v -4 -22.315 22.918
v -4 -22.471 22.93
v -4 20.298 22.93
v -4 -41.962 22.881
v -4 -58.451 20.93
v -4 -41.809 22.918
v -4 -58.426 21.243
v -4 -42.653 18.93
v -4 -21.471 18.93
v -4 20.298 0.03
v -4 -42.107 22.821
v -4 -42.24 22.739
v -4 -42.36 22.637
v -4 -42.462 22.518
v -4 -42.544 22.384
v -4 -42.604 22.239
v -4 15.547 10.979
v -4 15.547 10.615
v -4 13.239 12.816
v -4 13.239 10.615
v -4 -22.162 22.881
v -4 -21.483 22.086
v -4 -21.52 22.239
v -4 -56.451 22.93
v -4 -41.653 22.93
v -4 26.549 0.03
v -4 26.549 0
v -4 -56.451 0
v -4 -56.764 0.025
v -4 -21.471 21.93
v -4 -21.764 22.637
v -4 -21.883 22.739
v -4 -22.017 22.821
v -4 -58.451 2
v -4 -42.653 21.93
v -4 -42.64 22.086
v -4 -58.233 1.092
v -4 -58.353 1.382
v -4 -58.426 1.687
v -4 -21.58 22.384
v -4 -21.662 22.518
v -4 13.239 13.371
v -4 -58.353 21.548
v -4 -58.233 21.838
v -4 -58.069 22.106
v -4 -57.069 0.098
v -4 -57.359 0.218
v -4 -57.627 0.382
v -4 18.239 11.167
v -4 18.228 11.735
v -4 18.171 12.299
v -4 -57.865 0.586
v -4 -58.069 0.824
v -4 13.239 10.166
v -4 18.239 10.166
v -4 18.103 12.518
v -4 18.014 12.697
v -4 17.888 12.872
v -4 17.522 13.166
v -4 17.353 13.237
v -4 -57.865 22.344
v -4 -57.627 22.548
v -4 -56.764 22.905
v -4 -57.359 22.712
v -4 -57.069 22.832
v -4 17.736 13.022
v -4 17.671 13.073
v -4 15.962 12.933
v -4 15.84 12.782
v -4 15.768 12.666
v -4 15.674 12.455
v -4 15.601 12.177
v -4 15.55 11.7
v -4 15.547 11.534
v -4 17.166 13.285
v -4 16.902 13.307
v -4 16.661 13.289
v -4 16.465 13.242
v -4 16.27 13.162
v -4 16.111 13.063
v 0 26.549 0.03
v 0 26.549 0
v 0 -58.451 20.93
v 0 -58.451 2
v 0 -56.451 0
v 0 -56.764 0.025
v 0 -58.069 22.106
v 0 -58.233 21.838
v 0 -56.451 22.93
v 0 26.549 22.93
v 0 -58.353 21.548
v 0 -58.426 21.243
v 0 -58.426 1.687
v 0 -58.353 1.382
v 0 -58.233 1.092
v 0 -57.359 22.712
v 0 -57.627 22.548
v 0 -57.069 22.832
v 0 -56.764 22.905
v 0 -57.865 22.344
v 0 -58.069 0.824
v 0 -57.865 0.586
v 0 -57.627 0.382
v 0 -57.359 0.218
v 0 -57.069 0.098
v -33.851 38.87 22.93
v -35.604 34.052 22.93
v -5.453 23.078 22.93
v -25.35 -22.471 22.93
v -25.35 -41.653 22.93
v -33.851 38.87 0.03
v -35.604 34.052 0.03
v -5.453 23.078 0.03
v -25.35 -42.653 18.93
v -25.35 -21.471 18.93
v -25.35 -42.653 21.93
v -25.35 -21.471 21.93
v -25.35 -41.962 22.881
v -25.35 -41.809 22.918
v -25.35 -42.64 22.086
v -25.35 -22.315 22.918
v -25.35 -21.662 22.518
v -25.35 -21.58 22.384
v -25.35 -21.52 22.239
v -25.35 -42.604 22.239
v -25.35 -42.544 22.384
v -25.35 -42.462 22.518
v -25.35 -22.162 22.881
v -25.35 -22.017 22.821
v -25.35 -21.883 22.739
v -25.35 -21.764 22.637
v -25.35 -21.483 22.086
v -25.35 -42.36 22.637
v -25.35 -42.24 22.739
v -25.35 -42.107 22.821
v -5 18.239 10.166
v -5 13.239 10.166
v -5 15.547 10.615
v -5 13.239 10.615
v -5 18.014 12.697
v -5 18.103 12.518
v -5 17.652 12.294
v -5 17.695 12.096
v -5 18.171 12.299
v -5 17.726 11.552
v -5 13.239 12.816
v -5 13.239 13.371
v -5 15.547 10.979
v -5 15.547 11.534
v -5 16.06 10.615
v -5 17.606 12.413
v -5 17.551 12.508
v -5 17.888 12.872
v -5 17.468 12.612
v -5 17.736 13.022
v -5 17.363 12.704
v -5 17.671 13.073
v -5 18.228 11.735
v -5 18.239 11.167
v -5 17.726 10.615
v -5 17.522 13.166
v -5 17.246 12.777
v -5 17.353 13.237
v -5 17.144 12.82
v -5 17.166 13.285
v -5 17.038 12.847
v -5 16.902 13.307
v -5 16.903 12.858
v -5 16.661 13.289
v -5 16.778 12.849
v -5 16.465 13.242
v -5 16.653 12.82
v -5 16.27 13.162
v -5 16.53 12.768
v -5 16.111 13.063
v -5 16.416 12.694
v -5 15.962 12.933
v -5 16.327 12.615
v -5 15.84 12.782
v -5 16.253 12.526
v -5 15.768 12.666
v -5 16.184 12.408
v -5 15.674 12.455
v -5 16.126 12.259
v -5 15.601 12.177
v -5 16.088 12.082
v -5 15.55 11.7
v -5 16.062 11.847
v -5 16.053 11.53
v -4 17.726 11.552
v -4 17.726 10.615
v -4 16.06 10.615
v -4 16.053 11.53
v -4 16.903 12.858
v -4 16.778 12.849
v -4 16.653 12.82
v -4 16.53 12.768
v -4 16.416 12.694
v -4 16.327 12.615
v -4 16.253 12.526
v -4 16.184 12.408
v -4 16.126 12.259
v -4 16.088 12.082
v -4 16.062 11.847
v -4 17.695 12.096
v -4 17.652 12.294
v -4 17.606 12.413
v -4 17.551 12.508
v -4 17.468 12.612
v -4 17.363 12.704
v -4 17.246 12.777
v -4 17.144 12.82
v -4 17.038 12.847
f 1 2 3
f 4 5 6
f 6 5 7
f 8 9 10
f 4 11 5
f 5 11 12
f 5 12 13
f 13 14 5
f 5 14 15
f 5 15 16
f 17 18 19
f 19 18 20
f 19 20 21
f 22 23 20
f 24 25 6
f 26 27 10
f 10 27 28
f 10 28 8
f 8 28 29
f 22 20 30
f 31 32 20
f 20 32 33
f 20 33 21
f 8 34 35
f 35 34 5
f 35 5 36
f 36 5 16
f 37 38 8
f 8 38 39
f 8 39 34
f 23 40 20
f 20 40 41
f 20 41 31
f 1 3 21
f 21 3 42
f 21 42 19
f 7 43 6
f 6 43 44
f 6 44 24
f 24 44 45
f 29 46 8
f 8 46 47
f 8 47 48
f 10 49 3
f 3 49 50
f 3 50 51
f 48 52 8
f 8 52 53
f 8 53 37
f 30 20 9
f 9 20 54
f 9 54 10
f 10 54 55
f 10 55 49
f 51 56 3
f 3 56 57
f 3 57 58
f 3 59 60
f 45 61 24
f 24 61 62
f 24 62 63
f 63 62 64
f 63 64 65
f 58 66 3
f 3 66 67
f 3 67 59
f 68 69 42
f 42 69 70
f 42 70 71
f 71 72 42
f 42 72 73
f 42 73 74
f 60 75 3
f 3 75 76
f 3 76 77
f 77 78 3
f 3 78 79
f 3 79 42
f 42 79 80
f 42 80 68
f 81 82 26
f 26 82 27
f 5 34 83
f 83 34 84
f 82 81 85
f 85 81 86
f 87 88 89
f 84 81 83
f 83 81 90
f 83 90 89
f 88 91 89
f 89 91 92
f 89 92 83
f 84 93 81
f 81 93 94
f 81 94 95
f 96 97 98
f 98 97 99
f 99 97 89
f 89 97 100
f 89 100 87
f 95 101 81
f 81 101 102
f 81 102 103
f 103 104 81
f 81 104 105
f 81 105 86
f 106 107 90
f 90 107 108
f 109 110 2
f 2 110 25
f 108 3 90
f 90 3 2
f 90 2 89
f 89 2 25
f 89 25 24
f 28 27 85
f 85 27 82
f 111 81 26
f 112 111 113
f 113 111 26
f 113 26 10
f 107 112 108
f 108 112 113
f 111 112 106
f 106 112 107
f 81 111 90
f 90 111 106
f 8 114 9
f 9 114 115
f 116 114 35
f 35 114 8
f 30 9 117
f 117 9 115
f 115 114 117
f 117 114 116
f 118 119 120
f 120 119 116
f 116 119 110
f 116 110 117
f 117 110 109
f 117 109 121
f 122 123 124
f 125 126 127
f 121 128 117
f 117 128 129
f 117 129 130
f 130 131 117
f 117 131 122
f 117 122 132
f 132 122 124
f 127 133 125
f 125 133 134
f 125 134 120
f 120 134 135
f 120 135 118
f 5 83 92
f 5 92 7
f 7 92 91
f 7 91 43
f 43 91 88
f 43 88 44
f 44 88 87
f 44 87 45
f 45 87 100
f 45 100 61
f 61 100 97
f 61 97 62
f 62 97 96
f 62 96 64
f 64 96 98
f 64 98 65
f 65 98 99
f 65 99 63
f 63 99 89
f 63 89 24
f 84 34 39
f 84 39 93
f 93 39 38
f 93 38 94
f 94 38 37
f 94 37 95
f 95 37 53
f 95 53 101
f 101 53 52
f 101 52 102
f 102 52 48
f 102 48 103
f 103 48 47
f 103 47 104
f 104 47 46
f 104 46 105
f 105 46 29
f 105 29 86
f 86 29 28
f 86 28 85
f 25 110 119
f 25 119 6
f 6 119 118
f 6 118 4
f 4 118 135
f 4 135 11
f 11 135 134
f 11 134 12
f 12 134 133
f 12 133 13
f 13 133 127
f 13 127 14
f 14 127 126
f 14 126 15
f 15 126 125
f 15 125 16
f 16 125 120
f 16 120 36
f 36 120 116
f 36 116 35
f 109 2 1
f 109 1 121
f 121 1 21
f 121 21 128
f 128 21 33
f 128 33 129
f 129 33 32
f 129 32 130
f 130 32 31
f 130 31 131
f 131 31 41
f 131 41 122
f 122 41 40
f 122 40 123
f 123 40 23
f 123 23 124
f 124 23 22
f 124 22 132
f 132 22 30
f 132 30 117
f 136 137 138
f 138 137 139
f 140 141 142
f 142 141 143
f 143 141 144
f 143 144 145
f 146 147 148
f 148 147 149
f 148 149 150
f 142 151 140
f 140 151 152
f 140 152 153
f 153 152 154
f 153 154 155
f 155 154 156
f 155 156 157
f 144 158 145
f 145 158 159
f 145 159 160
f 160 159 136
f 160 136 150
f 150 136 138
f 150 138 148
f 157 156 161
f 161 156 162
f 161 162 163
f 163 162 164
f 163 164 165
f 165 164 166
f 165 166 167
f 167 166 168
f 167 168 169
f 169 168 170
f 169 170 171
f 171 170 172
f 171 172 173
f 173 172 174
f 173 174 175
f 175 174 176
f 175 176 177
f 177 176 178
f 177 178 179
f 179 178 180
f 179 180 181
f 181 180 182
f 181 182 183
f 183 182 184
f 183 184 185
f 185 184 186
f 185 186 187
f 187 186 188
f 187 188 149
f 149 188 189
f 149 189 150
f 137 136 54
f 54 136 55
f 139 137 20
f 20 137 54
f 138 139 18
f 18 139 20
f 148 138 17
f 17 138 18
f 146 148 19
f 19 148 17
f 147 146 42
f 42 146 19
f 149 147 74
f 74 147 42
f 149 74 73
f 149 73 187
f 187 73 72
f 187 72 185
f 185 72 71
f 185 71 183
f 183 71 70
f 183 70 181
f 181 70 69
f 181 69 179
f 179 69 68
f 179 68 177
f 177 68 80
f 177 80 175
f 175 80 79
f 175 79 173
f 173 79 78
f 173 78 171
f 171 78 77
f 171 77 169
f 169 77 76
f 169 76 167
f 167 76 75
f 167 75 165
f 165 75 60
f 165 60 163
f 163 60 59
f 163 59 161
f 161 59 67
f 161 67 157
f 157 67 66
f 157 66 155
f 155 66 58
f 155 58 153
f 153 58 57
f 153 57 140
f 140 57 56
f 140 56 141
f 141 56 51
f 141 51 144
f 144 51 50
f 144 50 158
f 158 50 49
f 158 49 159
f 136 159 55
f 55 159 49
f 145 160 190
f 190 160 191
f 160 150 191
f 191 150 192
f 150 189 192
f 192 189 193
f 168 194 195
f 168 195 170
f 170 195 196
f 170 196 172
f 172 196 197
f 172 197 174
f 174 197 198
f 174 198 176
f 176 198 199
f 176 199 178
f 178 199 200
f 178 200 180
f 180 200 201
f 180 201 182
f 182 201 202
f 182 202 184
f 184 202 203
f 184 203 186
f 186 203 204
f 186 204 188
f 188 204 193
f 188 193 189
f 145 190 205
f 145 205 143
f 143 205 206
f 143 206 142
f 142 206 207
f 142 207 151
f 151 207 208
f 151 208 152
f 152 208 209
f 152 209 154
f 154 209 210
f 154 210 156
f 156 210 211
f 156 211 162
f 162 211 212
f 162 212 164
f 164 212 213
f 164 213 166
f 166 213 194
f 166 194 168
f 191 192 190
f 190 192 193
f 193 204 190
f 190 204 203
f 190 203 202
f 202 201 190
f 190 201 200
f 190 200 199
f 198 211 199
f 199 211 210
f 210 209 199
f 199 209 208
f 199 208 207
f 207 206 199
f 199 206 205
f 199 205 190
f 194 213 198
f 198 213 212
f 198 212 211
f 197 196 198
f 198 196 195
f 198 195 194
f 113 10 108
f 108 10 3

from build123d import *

# Parameters (mm, degrees)
ESQUISSE1_W        = 4
ESQUISSE1_H        = 85
BOSS_EXTRU_1_DEPTH = 22.93
BOSS_EXTRU_5_DEPTH = 22.9
ESQUISSE5_W        = 25.35
ESQUISSE5_H        = 21.181614094
BOSS_EXTRU_6_DEPTH = 4
CONG_1_R           = 2
CONG_5_R           = 1
BOSS_EXTRU_8_DEPTH = 1
BOSS_EXTRU_9_DEPTH = 22.9


with BuildPart() as part:
    # Esquisse1 → Boss.-Extru.1 (new body)
    with BuildSketch(Plane.XY):
        with Locations((-2, -15.95097561)):
            Rectangle(ESQUISSE1_W, ESQUISSE1_H)
    extrude(amount=BOSS_EXTRU_1_DEPTH)

    # Esquisse2 → Boss.-Extru.5 (add)
    with BuildSketch(Plane.XY.offset(22.93)):
        Polygon((-33.850627534, 38.869645224), (0, 26.54902439), (0, 22.54902439), (-4, 22.54902439), (-35.604113867, 34.051981118), align=None)
    extrude(amount=-BOSS_EXTRU_5_DEPTH)

    # Esquisse5 → Boss.-Extru.6 (add)
    with BuildSketch(Plane.XY.offset(22.93)):
        with Locations((-12.675, -32.061782657)):
            Rectangle(ESQUISSE5_W, ESQUISSE5_H)
    extrude(amount=-BOSS_EXTRU_6_DEPTH)

    # Congé1
    cong_1_edges = [part.edges().sort_by_distance(p)[0] for p in [
        (-2, -58.45097561, 22.93),
        (-2, -58.45097561, 0),
    ]]
    fillet(cong_1_edges, radius=CONG_1_R)

    # Congé5
    cong_5_edges = [part.edges().sort_by_distance(p)[0] for p in [
        (-14.675, -21.47097561, 22.93),
        (-14.675, -42.652589704, 22.93),
    ]]
    fillet(cong_5_edges, radius=CONG_5_R)

    # Esquisse10 → Boss.-Extru.8 (add)
    with BuildSketch(Plane.ZY.offset(4)):
        with BuildLine():
            Line((10.166030362, 18.2390183), (11.166631323, 18.2390183))
            add(Edge.make_bspline(
                [(11.166631323, 18.2390183), (11.233404364, 18.238796034), (11.361615999, 18.238369259), (11.545292099, 18.235989598), (11.712187952, 18.22916909), (11.862216294, 18.223299685), (11.995374373, 18.212596912), (12.112070502, 18.202367416), (12.211767213, 18.188976472), (12.272118429, 18.176540153), (12.299443823, 18.170909326)],
                knots=[0, 0, 0, 0, 0.000200323, 0.000384642, 0.000551017, 0.000701421, 0.00083501, 0.000951717, 0.001052854, 0.001136534, 0.001136534, 0.001136534, 0.001136534], degree=3))
            add(Edge.make_bspline(
                [(12.299443823, 18.170909326), (12.336024715, 18.161871089), (12.408406128, 18.143987427), (12.512620508, 18.106187997), (12.611926685, 18.062445676), (12.705912149, 18.011068933), (12.794106136, 17.951676391), (12.877418009, 17.885293359), (12.956225814, 17.812283065), (13.027342428, 17.73080472), (13.094398216, 17.645323991), (13.150953397, 17.552890053), (13.199705511, 17.456230728), (13.238520535, 17.354362988), (13.269774783, 17.248274743), (13.291812268, 17.137005033), (13.30502825, 17.021060783), (13.306373758, 16.941978056), (13.307056003, 16.901878877)],
                knots=[0, 0, 0, 0, 0.000112973, 0.000223535, 0.000332046, 0.000438282, 0.0005444, 0.000650613, 0.000757615, 0.000866163, 0.000974744, 0.001083144, 0.001190647, 0.001299089, 0.001409706, 0.001522064, 0.001638977, 0.001759236, 0.001759236, 0.001759236, 0.001759236], degree=3))
            add(Edge.make_bspline(
                [(13.307056003, 16.901878877), (13.304957434, 16.835257299), (13.300862583, 16.705261345), (13.262683863, 16.516602943), (13.200145978, 16.340618207), (13.113969851, 16.177528725), (13.004227743, 16.030513517), (12.872335184, 15.901384295), (12.718218596, 15.793327277), (12.574748145, 15.718394699), (12.448013574, 15.67040483), (12.34368027, 15.636638603), (12.229870302, 15.610550081), (12.10767411, 15.587178464), (11.976583173, 15.569533186), (11.836911688, 15.55660948), (11.688560043, 15.548532268), (11.586647087, 15.547329403), (11.534219464, 15.546710608)],
                knots=[0, 0, 0, 0, 0.000199681, 0.000389629, 0.000574641, 0.000758347, 0.00094084, 0.00112287, 0.00130963, 0.001503603, 0.001606651, 0.001715936, 0.001832303, 0.001956651, 0.002089094, 0.002228924, 0.002377378, 0.002534658, 0.002534658, 0.002534658, 0.002534658], degree=3))
            Line((11.534219464, 15.546710608), (13.371158567, 13.2390183))
            Line((13.371158567, 13.2390183), (12.816270746, 13.2390183))
            Line((12.816270746, 13.2390183), (10.979331644, 15.546710608))
            Line((10.979331644, 15.546710608), (10.61474831, 15.546710608))
            Line((10.61474831, 15.546710608), (10.61474831, 13.2390183))
            Line((10.61474831, 13.2390183), (10.166030362, 13.2390183))
            Line((10.166030362, 13.2390183), (10.166030362, 18.2390183))
        make_face()
        with BuildLine():
            Line((10.61474831, 17.726197787), (10.61474831, 16.05953112))
            Line((10.61474831, 16.05953112), (11.530213054, 16.052519902))
            add(Edge.make_bspline(
                [(11.530213054, 16.052519902), (11.572955967, 16.052500993), (11.655803905, 16.052464341), (11.775661998, 16.058169736), (11.887262158, 16.06466019), (11.990177518, 16.074587827), (12.084454054, 16.087382215), (12.170044644, 16.103386478), (12.247089004, 16.122032282), (12.336944059, 16.150891747), (12.437281961, 16.196614631), (12.546326904, 16.263136772), (12.639187386, 16.346806942), (12.717641475, 16.442483308), (12.78068352, 16.547677949), (12.825129312, 16.661129905), (12.853332801, 16.779975045), (12.856659294, 16.861658056), (12.858338054, 16.902880479)],
                knots=[0, 0, 0, 0, 0.000128209, 0.000248506, 0.000359904, 0.000463555, 0.000558601, 0.000645233, 0.000724669, 0.000796254, 0.000928055, 0.001054503, 0.00117794, 0.001301056, 0.001424562, 0.001544156, 0.0016654, 0.001788926, 0.001788926, 0.001788926, 0.001788926], degree=3))
            add(Edge.make_bspline(
                [(12.858338054, 16.902880479), (12.856620738, 16.94308987), (12.853217645, 17.022770211), (12.82543369, 17.139421512), (12.778448859, 17.249517155), (12.715131376, 17.352609276), (12.637989726, 17.446188899), (12.547535708, 17.52625626), (12.446242572, 17.592326924), (12.351569432, 17.634547468), (12.266949128, 17.660432973), (12.193478185, 17.678648921), (12.110461789, 17.693283876), (12.017496848, 17.705009678), (11.914980232, 17.715088169), (11.802393588, 17.721876425), (11.680483902, 17.725896231), (11.595988286, 17.726094929), (11.55224831, 17.726197787)],
                knots=[0, 0, 0, 0, 0.00012053, 0.000238846, 0.000357345, 0.000478278, 0.000600621, 0.000719816, 0.000839275, 0.000962126, 0.001029286, 0.001104593, 0.001189072, 0.001282, 0.00138565, 0.001498049, 0.00162031, 0.001751524, 0.001751524, 0.001751524, 0.001751524], degree=3))
            Line((11.55224831, 17.726197787), (10.61474831, 17.726197787))
        make_face(mode=Mode.SUBTRACT)
    extrude(amount=BOSS_EXTRU_8_DEPTH)

    # Esquisse11 → Boss.-Extru.9 (add)
    with BuildSketch(Plane.XY.offset(22.93)):
        Polygon((-5.452843765, 23.077816276), (-4, 20.298440223), (-0.659211444, 23.077816276), align=None)
    extrude(amount=-BOSS_EXTRU_9_DEPTH)


solid = part.part
